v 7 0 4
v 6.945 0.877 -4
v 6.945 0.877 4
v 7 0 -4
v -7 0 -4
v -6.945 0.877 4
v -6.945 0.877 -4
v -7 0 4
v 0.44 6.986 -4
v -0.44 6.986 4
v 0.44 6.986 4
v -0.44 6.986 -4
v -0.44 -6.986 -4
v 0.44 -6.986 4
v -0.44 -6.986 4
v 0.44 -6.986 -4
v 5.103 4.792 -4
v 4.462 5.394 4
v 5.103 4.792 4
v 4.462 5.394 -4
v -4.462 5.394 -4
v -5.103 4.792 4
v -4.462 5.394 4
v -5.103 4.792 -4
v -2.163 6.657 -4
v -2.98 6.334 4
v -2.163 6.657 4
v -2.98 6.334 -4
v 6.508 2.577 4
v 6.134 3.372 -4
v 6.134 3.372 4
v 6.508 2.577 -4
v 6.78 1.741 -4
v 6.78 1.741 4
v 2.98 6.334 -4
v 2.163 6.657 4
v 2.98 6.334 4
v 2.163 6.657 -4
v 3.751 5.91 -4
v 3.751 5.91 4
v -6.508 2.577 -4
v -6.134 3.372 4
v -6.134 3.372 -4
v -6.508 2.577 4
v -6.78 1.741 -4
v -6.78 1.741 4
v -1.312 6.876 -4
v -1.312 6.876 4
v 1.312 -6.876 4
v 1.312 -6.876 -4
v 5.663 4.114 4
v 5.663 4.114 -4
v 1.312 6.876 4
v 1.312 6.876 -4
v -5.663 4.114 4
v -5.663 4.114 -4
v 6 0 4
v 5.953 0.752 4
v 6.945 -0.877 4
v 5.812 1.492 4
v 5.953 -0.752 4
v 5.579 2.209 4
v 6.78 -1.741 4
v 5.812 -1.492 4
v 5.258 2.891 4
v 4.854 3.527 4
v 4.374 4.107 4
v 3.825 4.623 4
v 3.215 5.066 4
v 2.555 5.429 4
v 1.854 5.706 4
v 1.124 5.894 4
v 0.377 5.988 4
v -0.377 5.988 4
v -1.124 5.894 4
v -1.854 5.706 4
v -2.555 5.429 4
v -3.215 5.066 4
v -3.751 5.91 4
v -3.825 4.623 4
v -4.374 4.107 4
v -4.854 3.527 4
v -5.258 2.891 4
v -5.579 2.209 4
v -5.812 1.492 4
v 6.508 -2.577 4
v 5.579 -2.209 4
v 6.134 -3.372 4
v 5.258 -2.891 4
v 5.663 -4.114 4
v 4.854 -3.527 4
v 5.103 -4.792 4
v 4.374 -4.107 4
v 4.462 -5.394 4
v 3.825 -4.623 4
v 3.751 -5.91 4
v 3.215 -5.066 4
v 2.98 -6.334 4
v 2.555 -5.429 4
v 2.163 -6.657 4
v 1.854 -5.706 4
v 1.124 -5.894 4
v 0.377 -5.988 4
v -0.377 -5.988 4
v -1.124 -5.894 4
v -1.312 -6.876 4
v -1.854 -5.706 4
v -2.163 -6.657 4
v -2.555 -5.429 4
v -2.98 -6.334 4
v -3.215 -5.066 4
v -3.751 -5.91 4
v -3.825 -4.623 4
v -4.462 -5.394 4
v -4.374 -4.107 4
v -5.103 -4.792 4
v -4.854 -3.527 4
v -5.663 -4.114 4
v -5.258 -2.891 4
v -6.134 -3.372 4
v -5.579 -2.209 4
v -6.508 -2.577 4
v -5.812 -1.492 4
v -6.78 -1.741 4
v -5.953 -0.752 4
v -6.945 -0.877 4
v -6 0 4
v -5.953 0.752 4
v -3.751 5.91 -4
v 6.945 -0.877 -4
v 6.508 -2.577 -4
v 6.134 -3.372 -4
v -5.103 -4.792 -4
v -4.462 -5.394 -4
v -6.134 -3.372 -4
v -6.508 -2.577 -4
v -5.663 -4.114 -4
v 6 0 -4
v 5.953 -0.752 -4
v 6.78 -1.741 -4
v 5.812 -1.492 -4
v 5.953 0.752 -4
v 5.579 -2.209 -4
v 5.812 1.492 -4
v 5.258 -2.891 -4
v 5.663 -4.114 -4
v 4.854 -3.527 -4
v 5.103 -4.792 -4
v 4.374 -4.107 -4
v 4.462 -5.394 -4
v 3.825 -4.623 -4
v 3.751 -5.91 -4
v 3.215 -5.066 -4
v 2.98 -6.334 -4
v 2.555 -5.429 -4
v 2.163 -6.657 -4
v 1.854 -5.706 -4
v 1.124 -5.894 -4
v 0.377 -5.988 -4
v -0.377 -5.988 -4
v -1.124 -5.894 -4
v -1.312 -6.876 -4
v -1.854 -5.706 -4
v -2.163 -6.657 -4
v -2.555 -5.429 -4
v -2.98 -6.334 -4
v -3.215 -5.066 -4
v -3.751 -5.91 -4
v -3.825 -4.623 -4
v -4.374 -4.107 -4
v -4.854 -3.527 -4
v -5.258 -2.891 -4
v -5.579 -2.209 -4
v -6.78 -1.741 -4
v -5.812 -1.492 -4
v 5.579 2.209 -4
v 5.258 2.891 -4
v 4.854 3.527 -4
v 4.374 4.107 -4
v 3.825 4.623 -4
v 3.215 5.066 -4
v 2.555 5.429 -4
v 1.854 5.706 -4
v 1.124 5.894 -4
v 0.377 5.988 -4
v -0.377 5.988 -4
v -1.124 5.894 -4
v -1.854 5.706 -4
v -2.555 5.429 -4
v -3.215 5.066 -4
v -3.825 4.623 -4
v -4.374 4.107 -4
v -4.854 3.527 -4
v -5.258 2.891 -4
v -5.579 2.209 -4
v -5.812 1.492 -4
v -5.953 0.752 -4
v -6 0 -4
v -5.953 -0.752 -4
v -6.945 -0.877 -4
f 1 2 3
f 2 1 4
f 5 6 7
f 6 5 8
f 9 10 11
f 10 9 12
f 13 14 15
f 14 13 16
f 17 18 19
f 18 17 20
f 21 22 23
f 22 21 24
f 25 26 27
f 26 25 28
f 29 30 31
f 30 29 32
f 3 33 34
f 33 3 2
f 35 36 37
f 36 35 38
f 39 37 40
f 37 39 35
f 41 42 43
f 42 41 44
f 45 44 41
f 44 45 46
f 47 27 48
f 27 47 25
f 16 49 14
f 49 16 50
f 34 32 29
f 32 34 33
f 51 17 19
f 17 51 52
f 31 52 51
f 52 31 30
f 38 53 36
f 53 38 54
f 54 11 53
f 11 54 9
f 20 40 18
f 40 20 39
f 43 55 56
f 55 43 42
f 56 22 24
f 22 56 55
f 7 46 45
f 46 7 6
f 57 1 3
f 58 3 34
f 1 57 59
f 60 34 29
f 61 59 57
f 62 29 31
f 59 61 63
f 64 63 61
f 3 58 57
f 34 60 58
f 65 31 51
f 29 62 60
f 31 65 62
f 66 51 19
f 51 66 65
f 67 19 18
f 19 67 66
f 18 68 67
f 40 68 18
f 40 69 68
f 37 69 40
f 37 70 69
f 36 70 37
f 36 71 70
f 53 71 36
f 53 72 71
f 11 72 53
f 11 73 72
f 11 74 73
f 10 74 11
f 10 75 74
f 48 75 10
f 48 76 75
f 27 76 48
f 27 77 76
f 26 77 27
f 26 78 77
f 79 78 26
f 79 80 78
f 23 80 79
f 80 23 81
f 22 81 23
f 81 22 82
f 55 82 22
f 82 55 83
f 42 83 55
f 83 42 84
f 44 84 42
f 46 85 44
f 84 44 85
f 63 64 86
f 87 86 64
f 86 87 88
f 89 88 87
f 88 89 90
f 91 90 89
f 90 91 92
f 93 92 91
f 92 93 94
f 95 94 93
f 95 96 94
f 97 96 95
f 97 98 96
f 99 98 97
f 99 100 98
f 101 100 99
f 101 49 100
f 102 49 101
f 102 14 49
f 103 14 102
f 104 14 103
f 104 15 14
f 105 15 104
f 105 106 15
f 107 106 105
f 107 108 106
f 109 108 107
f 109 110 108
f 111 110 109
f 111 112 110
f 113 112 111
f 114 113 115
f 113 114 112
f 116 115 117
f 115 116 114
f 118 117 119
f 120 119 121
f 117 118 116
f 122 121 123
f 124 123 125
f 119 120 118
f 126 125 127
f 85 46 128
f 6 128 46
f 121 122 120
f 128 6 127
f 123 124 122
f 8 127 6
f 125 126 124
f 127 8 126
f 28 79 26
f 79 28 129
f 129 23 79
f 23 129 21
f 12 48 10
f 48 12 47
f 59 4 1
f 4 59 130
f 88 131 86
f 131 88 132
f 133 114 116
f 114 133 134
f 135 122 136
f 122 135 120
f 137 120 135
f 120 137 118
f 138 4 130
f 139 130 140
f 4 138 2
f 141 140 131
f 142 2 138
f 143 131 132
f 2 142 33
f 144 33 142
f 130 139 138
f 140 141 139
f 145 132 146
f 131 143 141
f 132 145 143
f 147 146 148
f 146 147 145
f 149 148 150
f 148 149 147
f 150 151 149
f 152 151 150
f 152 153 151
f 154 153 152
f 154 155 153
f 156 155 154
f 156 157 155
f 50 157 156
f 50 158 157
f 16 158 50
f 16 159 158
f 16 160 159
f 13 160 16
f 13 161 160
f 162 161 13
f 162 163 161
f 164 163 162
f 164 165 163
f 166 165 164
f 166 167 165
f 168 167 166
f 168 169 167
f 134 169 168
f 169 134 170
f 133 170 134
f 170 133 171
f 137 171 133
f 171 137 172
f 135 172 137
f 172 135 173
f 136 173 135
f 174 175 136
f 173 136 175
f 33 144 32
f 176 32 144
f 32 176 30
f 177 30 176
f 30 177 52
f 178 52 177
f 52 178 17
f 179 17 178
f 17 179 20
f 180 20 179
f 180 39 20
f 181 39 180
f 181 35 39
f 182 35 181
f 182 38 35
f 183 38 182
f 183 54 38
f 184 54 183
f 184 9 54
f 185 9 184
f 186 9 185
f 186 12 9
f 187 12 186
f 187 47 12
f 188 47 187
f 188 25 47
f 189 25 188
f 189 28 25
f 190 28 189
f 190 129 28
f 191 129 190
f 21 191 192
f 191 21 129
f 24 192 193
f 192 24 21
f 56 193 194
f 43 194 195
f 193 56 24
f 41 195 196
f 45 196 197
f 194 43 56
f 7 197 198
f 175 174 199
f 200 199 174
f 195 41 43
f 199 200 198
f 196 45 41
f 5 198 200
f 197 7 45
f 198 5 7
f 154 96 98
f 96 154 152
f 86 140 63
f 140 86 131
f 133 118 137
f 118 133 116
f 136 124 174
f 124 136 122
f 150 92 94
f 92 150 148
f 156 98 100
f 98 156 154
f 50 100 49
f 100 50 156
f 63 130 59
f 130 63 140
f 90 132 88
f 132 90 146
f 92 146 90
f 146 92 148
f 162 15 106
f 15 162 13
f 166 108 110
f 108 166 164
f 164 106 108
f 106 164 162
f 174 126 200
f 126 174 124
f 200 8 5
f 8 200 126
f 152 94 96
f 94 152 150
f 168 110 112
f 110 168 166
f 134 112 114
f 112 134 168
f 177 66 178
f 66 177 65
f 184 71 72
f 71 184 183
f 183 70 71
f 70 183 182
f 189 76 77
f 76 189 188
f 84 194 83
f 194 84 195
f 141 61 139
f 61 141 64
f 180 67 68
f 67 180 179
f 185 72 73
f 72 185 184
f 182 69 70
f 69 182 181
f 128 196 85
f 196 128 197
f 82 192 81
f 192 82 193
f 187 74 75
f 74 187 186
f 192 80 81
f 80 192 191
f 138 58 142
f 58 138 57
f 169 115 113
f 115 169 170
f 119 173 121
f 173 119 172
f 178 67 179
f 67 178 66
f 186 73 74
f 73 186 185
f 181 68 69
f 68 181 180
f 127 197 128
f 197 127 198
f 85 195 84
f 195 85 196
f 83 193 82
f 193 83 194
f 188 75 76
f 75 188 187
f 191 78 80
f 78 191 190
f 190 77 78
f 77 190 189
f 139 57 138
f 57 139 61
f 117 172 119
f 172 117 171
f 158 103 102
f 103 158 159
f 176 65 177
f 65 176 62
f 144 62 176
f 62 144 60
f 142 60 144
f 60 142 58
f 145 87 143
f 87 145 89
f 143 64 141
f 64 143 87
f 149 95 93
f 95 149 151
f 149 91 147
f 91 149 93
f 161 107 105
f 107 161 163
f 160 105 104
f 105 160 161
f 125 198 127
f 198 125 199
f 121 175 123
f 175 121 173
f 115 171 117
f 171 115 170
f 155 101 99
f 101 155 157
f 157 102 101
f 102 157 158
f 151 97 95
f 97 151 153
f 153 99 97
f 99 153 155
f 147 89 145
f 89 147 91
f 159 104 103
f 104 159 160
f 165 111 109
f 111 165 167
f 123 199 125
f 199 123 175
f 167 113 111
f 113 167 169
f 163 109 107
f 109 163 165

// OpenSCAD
$fn = 50;


difference() {
	union() {
		translate(v = [0, 0, -4.0000000000]) {
			cylinder(h = 8, r = 7.0000000000);
		}
	}
	union() {
		translate(v = [0, 0, -100.0000000000]) {
			cylinder(h = 200, r = 6);
		}
	}
}
